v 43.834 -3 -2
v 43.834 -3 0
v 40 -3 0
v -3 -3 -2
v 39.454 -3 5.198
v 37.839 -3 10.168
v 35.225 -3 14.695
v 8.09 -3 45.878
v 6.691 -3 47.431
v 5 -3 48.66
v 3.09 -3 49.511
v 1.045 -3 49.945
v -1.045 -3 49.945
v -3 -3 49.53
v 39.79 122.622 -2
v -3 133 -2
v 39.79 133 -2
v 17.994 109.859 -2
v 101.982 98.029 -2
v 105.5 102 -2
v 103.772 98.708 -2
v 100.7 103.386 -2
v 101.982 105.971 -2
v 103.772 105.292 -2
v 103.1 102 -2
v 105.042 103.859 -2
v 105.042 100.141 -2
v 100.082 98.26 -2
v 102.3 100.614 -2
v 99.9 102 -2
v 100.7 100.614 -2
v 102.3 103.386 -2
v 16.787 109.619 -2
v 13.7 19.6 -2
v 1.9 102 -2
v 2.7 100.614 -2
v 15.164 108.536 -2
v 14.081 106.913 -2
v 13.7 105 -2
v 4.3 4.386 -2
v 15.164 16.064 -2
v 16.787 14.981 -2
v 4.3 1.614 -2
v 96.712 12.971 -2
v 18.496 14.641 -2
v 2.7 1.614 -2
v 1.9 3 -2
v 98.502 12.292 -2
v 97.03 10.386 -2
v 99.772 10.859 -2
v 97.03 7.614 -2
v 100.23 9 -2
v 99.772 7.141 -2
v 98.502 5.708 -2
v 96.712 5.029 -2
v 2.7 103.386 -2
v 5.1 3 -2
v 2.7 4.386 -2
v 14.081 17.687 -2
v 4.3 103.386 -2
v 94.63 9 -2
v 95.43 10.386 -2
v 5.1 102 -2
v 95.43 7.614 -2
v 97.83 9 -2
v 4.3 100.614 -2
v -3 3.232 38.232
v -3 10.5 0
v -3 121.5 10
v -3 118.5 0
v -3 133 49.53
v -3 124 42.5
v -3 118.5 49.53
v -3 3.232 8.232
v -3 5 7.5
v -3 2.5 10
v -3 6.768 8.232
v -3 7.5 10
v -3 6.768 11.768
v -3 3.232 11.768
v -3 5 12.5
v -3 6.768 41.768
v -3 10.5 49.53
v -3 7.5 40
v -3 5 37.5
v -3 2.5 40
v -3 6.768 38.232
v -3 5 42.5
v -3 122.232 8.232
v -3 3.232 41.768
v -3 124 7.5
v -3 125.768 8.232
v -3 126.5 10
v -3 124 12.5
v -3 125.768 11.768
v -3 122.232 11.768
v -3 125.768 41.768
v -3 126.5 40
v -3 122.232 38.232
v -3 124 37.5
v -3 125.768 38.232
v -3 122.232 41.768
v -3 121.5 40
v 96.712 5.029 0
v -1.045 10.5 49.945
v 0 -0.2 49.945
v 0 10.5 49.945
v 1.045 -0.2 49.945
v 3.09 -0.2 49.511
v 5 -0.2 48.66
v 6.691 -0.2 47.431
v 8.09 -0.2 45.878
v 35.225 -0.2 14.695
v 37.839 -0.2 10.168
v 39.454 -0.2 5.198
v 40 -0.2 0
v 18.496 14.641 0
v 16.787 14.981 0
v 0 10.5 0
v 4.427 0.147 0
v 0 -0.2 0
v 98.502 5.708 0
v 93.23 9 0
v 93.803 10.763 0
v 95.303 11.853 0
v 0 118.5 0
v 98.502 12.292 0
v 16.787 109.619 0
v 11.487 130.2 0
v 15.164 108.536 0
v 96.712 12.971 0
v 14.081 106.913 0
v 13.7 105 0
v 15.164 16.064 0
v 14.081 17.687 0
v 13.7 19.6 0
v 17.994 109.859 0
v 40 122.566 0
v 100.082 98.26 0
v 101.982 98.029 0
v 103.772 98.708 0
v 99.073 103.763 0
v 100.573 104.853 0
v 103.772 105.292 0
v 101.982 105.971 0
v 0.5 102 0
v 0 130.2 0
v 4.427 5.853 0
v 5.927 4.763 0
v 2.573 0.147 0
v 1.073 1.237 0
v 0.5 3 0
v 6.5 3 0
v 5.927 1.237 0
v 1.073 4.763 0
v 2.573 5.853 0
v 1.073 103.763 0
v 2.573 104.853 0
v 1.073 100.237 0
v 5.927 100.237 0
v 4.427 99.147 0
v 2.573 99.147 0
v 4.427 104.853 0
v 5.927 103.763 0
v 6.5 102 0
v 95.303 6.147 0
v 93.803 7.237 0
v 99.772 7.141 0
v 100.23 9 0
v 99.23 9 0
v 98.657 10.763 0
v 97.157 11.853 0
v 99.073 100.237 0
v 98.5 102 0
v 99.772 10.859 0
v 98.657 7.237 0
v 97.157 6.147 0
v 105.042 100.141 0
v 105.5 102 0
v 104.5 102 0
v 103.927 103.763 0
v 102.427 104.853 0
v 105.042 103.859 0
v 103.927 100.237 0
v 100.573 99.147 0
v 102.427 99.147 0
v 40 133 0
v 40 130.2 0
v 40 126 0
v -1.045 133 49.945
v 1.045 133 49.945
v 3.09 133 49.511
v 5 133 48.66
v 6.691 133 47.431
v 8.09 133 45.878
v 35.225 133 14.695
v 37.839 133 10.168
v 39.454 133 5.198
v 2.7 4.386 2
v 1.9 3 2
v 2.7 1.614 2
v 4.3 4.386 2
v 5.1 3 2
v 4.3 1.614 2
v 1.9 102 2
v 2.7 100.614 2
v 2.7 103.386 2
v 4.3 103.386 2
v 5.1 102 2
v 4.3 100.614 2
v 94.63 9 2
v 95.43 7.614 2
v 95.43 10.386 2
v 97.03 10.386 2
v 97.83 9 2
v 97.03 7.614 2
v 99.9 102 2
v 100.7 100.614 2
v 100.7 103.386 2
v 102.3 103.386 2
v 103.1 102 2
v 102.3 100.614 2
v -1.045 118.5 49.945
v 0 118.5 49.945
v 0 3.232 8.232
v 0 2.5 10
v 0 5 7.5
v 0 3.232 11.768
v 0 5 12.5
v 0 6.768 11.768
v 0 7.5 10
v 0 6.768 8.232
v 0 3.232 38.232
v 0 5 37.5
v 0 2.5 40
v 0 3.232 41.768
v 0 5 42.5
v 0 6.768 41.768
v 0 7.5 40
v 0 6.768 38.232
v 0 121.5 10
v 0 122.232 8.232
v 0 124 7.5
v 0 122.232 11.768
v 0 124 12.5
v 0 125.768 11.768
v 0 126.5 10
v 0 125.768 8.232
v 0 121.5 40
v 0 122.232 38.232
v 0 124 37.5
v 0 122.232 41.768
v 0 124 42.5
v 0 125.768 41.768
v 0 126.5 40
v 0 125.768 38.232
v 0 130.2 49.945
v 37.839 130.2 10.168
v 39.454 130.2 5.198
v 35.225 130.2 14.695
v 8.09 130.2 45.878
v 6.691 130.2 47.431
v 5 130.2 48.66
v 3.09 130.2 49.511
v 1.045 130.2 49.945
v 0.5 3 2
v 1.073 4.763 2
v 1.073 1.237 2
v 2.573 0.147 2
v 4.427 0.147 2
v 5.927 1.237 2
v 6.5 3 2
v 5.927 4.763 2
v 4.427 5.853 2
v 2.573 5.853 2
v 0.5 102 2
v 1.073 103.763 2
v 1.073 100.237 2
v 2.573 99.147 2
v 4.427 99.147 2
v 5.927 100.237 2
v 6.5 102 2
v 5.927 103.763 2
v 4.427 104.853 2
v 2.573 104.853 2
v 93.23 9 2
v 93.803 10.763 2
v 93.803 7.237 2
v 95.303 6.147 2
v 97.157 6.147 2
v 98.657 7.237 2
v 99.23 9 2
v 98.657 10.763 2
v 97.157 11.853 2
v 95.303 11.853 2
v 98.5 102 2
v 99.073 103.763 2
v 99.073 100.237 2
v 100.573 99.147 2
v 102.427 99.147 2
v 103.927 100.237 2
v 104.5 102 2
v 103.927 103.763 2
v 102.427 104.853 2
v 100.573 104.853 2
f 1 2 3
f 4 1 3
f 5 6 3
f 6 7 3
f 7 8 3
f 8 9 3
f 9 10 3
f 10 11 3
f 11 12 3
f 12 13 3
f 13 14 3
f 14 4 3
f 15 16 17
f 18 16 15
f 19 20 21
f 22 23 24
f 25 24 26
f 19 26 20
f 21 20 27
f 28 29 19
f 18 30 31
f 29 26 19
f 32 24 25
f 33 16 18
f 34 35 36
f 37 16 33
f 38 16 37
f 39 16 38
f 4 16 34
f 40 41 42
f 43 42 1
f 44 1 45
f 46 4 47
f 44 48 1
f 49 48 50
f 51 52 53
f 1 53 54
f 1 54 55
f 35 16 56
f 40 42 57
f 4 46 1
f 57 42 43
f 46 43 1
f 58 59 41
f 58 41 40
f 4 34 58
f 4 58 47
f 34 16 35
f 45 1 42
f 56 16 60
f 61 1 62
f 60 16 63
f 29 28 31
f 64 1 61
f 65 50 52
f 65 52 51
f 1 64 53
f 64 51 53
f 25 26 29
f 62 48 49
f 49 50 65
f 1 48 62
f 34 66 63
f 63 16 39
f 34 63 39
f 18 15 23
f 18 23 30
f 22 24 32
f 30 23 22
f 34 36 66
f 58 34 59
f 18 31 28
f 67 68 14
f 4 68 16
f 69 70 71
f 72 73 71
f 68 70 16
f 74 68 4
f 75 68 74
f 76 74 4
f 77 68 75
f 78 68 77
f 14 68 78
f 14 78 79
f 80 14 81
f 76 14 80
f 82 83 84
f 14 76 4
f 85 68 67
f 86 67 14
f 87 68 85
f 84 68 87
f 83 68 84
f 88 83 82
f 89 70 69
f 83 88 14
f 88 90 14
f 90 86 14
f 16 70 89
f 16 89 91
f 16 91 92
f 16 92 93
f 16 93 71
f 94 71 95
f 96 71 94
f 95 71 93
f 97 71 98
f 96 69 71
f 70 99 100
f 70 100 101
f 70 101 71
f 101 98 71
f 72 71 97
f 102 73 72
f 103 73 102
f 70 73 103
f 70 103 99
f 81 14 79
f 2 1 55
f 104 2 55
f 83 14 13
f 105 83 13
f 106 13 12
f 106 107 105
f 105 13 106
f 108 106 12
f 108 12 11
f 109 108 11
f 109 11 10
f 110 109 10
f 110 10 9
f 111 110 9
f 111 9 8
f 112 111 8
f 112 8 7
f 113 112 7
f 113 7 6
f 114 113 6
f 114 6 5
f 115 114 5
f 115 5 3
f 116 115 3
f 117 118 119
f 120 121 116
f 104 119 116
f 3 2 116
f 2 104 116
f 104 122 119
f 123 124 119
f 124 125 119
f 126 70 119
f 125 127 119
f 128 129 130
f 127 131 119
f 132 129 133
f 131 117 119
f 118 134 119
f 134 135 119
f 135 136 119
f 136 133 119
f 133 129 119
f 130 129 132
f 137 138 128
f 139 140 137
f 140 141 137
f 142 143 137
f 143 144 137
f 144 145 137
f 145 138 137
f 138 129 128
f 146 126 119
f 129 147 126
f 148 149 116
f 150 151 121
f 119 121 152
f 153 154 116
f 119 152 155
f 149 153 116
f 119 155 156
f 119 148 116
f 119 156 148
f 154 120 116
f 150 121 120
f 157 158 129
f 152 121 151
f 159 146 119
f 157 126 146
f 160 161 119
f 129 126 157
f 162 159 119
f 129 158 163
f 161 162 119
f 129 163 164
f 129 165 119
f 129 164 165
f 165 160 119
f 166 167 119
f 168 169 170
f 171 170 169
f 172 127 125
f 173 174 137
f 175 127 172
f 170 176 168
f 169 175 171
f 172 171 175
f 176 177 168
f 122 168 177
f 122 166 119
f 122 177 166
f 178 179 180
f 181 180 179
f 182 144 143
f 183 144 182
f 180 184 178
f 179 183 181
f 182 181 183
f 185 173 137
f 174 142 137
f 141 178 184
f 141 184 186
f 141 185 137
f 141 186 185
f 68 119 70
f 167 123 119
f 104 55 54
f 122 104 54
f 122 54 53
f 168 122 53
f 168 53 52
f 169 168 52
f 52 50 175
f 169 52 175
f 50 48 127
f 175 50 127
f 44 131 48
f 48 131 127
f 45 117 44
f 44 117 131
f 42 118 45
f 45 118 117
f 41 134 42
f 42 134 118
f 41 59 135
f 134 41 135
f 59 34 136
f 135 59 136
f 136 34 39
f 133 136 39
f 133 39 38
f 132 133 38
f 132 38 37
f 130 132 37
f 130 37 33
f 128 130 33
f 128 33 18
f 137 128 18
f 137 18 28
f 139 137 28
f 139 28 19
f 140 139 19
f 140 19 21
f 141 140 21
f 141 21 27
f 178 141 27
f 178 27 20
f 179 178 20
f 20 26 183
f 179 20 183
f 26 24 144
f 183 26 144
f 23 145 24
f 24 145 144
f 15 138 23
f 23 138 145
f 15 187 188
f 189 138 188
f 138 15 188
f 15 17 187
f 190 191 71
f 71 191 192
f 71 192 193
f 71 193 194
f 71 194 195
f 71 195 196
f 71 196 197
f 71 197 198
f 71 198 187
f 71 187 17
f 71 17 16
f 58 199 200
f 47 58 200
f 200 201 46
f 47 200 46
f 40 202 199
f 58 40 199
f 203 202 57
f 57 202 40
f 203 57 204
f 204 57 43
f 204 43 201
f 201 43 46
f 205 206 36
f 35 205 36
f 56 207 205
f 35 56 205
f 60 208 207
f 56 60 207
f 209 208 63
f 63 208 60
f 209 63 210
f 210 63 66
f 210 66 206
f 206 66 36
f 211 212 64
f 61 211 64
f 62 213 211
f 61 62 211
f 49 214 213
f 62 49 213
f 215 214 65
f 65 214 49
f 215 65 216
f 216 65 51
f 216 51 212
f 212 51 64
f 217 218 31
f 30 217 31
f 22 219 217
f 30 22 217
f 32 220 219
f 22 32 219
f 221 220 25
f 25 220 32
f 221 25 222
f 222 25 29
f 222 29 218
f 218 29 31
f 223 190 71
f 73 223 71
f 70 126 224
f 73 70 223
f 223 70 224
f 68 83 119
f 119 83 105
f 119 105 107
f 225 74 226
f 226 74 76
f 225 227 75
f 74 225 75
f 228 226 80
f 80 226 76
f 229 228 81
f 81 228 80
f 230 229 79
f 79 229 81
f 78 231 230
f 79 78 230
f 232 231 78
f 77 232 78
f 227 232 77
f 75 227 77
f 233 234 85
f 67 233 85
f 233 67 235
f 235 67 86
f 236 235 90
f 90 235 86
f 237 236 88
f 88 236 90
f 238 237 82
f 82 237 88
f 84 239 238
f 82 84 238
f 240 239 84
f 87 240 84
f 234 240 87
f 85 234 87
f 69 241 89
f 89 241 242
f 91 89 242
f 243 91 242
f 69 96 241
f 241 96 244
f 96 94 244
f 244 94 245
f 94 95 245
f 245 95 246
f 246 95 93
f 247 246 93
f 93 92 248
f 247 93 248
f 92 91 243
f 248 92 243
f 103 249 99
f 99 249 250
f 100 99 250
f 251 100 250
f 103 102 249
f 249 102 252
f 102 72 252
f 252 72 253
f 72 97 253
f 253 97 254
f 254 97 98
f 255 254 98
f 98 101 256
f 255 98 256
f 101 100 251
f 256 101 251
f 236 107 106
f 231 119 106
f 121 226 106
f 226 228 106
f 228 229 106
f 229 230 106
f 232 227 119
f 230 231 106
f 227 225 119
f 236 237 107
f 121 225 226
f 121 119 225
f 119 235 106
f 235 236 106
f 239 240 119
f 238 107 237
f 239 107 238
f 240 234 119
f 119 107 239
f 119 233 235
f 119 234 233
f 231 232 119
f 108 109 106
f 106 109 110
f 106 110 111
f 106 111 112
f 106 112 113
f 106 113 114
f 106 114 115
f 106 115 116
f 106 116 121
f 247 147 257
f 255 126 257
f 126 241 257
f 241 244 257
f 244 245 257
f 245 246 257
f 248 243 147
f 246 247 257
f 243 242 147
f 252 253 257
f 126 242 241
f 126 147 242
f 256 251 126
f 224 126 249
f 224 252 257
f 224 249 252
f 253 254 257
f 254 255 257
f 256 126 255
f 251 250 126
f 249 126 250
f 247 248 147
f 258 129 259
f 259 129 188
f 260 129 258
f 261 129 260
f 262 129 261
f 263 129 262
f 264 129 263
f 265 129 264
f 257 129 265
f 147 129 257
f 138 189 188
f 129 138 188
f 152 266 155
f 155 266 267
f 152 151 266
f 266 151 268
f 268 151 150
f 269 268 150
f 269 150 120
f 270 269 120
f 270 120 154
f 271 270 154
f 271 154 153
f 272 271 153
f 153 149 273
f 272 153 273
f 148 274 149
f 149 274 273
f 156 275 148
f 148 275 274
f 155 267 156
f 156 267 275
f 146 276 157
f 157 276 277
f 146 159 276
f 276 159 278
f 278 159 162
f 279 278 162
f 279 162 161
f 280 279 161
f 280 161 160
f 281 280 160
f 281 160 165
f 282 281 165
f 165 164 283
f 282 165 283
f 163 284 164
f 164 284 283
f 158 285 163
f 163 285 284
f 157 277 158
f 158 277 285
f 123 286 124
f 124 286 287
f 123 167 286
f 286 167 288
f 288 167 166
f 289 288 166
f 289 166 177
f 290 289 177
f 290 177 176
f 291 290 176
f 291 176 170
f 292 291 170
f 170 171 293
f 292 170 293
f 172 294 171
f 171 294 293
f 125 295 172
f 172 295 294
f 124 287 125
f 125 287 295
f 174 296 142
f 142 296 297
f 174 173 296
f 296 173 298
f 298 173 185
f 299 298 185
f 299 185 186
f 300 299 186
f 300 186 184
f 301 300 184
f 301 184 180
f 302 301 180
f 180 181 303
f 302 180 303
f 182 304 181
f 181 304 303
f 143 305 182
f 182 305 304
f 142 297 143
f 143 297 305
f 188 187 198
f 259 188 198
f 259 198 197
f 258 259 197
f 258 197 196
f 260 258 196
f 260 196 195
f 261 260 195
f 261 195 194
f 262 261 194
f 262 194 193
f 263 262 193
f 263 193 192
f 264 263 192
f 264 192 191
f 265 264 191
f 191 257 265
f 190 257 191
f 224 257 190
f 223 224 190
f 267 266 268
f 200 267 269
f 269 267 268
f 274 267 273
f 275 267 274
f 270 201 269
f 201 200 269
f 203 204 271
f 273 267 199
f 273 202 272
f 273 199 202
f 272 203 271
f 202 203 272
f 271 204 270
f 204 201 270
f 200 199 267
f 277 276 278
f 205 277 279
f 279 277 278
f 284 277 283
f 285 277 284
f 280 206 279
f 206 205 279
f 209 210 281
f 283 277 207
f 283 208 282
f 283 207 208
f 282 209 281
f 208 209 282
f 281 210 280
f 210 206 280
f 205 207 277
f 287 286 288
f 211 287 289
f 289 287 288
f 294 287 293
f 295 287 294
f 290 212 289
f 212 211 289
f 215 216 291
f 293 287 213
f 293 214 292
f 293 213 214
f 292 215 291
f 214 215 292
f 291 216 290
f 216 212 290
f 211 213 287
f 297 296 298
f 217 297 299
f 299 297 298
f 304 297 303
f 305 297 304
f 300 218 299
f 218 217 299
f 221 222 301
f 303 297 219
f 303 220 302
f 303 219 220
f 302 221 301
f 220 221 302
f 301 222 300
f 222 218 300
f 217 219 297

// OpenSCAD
/*
Smoothieboard attach for electrical enclosure
*/



module smoothieholes(){
translate([0,0,-4])
union(){//holes
		
			translate([3.5,3,-30])
			cylinder(r=1.6,h=60);
			
			translate([3.5,102,-30])
			cylinder(r=1.6,h=60);
			
			translate([(105-8.77),9,-30])
			cylinder(r=1.6,h=60);
			translate([(105-3.5),102,-30])
			cylinder(r=1.6,h=60);
		
		}


}



module SmoothiePlate(){
	//-------------------smoothieBoard
	difference(){
translate([0,0,-0.75])
		cube([105,130,1.5]);
		translate([0,0,-1])
		smoothieholes();
	}
//USB port
translate([77,0,-0.75])
		cube([12.3,16.6,10.8]);
}

//background rail
module backSupport(){
	//back support
translate([0,0,-0.5])
linear_extrude(height = 1,center=true){
union(){
	hull() {
	   translate([3.5,3,0])
				circle(12);
	   translate([(105-8.77),9,0]) circle(4);
	}
	hull() {
	translate([(105-3.5),102,0])circle(4);
	 translate([3.5,122,0])
				circle(10);
	translate([3.5,127,0])
				circle(4);
	 }
	difference(){
		hull() {
		translate([(3.5),102,0])circle(17.2);
		 translate([(3.5),9,0]) circle(15);
		 }
		hull() {
		translate([(18.7),105,0])circle(5);
		 translate([(18.7),19.6,0]) circle(5);
		 }
	}
}
}

union(){//holes
		
			translate([3.5,3,0])
			cylinder(r=3,h=1);
			
			translate([3.5,102,0])
			cylinder(r=3,h=1);
			
			translate([(105-8.77),9,0])
			cylinder(r=3,h=1);
			translate([(105-3.5),102,0])
			cylinder(r=3,h=1);
		
		}



}



module arch(){//for the wall fixation

	difference(){
	
		//Arch
		rotate([90,0,0])
		linear_extrude(height = 15,center=true)
		hull() {
				translate([22,0,0])circle(25);
				 translate([7,40,0]) circle(10);
				 }
		union(){//wall holes

rotate([0,-90,0]){
			translate([10,2,-40])
			cylinder(r=2.5,h=60);
			translate([40,2,-40])
			cylinder(r=2.5,h=60);
}

		}
		
	
	}
}


difference(){





	union(){

difference(){
translate([-7,0,0])
union(){
		//archs
		translate([0,3,0])
		arch();




		translate([0,126,0])
mirror([0,1,0])
		arch();
}

union(){
translate([0,-0.2,0])
cube([105,130.4,500]);

}
}
		
		
		//total backplate
		difference(){
		scale([1,1,2])
		backSupport();
		
		}
	}

	union(){//bounding box
	
		translate([-10,133,-20])
		cube([105,130,300]);
		translate([-10,-33,-20])
		cube([105,30,300]);
		
		translate([-3,137.5,-20])
		rotate([0,0,180])
		cube([105,160,300]);
		
		translate([-20,-25,-32])
		cube([305,300,30]);
smoothieholes();
	
	}

}
///smoothie preview
//color([0.9,0.4,0.2,0.5])
//SmoothiePlate();
